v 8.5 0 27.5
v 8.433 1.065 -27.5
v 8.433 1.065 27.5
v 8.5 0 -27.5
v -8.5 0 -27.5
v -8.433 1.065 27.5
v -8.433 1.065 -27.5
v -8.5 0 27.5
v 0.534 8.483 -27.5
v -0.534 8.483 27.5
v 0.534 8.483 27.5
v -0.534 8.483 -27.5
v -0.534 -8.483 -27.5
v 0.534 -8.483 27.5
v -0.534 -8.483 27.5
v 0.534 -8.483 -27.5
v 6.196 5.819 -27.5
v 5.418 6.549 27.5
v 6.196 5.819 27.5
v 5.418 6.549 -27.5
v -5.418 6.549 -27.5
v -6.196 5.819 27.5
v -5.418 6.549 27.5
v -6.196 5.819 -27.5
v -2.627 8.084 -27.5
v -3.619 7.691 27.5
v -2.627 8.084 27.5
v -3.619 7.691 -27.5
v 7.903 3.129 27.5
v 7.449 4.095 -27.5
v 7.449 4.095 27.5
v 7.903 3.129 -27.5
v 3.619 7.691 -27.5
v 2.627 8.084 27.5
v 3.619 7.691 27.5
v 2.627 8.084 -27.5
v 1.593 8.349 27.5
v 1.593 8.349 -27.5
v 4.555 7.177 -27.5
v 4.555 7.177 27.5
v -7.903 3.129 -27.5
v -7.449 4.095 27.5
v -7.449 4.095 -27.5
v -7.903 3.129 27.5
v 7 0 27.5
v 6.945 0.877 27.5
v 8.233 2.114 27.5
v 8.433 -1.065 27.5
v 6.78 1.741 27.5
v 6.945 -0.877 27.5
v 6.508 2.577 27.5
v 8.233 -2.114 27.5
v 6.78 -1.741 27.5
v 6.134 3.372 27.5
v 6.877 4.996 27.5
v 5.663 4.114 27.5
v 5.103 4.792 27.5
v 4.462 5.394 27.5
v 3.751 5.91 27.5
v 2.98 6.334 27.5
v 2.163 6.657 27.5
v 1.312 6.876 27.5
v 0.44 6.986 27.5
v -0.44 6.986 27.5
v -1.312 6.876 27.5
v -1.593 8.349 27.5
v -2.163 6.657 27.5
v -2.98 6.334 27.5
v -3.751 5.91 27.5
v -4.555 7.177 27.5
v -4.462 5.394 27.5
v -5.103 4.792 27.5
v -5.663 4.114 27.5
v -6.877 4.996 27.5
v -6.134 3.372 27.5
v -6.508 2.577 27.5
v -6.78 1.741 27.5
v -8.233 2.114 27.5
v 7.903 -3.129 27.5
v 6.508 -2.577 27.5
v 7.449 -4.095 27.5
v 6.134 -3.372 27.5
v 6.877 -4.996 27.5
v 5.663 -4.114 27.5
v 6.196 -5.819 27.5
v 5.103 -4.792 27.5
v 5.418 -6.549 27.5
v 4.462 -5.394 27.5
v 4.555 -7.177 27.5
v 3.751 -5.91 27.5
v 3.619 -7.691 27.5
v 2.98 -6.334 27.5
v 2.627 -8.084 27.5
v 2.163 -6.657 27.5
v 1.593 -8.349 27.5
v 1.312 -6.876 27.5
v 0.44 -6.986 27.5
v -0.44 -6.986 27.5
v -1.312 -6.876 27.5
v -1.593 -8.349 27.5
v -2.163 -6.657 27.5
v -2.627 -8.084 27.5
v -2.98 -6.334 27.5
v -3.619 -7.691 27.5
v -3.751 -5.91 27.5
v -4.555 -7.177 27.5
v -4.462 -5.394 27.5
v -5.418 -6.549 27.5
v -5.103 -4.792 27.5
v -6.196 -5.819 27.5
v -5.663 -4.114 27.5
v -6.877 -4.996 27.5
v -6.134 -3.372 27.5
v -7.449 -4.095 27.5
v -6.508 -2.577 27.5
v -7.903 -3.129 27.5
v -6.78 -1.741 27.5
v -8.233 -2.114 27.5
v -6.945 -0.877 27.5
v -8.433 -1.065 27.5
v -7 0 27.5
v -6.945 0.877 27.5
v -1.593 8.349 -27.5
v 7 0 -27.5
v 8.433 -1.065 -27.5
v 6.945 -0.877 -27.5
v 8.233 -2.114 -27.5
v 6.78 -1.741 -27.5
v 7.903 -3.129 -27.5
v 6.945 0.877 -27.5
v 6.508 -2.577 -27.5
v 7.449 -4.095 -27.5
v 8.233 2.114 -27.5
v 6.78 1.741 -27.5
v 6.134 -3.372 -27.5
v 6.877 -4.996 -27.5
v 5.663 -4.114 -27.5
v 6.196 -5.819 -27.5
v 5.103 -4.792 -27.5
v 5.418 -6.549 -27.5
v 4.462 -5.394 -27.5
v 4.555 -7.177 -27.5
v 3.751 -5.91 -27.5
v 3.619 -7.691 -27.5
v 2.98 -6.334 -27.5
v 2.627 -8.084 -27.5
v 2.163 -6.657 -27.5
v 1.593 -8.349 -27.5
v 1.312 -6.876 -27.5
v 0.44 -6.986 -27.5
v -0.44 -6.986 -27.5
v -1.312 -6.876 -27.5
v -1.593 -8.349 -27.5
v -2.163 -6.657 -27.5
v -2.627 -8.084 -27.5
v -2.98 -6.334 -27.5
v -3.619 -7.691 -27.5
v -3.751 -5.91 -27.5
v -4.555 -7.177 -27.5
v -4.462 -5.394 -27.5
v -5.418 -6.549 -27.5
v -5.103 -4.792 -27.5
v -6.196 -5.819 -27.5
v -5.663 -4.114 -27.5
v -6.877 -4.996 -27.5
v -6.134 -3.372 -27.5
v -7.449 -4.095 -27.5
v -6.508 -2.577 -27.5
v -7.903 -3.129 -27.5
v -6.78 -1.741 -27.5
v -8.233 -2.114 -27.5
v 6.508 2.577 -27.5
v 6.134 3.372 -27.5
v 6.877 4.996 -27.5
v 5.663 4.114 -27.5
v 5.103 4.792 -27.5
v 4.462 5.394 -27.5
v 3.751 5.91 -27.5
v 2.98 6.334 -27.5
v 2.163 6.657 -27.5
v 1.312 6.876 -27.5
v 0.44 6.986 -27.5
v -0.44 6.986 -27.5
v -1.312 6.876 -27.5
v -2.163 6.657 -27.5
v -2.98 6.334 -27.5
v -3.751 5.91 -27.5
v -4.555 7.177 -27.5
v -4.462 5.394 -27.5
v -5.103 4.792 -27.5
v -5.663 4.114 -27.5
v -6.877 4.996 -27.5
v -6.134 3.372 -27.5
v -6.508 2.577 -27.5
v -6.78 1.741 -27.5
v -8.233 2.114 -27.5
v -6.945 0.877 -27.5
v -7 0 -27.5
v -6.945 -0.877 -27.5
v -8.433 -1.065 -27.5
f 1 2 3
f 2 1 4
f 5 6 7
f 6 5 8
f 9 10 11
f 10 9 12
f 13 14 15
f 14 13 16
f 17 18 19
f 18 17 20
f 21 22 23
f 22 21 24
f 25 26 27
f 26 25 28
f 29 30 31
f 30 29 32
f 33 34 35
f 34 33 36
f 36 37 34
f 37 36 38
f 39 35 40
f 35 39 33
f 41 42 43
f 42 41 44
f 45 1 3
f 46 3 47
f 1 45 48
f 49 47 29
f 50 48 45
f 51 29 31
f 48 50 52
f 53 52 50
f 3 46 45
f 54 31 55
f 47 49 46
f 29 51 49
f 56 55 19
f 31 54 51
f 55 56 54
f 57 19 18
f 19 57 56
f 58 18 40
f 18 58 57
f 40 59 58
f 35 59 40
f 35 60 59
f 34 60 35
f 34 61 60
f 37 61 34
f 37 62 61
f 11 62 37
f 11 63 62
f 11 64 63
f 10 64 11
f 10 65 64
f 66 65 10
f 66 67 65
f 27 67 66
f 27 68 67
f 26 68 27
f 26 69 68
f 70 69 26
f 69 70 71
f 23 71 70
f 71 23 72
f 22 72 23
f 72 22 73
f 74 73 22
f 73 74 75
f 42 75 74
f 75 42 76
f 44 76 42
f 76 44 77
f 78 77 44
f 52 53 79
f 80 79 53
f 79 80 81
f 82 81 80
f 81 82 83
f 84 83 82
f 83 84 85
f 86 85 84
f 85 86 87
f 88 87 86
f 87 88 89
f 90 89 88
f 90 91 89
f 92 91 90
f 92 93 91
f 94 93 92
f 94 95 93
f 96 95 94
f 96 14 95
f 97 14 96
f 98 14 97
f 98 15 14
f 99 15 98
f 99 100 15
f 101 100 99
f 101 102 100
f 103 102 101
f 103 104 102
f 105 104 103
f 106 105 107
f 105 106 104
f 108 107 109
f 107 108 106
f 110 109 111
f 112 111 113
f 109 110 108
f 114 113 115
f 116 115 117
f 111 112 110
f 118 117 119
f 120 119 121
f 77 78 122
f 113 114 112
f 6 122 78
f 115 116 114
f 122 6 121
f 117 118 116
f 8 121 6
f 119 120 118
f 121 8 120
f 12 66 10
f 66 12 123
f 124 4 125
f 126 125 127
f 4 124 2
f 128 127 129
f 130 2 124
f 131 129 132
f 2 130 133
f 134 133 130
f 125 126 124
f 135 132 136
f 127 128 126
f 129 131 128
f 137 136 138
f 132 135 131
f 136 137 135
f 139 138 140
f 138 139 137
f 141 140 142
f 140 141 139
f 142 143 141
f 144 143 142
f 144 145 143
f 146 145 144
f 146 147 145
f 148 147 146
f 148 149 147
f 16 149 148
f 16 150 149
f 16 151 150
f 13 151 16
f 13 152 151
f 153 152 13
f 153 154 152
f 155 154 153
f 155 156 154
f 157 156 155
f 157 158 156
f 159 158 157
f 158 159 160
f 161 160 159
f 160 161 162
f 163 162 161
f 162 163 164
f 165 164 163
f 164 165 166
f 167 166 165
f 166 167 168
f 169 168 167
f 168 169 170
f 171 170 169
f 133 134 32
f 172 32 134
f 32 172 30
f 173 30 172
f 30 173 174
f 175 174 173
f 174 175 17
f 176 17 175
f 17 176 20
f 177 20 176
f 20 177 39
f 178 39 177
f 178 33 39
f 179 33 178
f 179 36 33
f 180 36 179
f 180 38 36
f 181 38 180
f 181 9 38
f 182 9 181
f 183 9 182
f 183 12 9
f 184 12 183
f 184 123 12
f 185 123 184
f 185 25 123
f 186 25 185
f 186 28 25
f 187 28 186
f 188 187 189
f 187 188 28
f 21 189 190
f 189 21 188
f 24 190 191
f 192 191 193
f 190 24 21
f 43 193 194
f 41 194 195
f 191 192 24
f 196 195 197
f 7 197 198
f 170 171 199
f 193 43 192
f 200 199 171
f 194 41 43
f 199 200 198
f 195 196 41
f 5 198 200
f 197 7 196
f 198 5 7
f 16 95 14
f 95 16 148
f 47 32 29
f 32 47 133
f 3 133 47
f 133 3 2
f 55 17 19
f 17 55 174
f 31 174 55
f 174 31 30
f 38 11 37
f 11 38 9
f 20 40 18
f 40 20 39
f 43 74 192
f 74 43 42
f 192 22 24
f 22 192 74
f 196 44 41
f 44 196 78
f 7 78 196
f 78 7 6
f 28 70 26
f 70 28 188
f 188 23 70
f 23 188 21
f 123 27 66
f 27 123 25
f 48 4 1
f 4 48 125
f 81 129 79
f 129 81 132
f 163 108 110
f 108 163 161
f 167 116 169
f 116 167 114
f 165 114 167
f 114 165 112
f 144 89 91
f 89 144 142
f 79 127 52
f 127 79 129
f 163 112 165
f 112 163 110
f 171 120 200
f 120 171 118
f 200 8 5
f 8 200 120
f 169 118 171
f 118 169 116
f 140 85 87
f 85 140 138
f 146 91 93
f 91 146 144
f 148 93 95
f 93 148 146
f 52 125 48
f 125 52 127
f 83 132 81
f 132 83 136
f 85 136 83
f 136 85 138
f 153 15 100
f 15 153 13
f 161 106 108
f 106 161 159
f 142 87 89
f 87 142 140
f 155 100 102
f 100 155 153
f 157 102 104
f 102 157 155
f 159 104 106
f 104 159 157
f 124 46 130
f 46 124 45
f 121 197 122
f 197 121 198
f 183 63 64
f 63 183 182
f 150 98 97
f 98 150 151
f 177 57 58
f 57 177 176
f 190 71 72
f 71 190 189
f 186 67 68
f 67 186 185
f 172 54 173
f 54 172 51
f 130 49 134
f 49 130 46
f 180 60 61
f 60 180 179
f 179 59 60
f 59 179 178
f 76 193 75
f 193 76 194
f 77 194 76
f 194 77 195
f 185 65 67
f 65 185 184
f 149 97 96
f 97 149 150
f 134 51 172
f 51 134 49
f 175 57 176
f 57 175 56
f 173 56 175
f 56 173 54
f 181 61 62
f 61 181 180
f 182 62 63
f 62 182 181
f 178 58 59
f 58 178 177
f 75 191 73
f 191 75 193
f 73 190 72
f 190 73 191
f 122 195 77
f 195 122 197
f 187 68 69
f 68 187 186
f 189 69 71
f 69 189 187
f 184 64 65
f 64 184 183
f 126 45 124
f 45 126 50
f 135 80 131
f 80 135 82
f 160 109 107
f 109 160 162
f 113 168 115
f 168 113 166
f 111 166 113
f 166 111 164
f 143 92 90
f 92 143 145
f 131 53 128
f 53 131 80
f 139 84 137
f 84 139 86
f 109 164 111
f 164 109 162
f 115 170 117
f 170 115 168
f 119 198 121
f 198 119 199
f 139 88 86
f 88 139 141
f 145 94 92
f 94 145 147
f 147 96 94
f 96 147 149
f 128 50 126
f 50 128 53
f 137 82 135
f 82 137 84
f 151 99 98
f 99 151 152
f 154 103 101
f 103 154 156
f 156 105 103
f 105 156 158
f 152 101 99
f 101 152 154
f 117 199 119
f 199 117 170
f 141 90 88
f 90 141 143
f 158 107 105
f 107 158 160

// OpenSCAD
$fn = 50;


difference() {
	union() {
		translate(v = [0, 0, -27.5000000000]) {
			cylinder(h = 55, r = 8.5000000000);
		}
	}
	union() {
		translate(v = [0, 0, -100.0000000000]) {
			cylinder(h = 200, r = 7);
		}
	}
}
